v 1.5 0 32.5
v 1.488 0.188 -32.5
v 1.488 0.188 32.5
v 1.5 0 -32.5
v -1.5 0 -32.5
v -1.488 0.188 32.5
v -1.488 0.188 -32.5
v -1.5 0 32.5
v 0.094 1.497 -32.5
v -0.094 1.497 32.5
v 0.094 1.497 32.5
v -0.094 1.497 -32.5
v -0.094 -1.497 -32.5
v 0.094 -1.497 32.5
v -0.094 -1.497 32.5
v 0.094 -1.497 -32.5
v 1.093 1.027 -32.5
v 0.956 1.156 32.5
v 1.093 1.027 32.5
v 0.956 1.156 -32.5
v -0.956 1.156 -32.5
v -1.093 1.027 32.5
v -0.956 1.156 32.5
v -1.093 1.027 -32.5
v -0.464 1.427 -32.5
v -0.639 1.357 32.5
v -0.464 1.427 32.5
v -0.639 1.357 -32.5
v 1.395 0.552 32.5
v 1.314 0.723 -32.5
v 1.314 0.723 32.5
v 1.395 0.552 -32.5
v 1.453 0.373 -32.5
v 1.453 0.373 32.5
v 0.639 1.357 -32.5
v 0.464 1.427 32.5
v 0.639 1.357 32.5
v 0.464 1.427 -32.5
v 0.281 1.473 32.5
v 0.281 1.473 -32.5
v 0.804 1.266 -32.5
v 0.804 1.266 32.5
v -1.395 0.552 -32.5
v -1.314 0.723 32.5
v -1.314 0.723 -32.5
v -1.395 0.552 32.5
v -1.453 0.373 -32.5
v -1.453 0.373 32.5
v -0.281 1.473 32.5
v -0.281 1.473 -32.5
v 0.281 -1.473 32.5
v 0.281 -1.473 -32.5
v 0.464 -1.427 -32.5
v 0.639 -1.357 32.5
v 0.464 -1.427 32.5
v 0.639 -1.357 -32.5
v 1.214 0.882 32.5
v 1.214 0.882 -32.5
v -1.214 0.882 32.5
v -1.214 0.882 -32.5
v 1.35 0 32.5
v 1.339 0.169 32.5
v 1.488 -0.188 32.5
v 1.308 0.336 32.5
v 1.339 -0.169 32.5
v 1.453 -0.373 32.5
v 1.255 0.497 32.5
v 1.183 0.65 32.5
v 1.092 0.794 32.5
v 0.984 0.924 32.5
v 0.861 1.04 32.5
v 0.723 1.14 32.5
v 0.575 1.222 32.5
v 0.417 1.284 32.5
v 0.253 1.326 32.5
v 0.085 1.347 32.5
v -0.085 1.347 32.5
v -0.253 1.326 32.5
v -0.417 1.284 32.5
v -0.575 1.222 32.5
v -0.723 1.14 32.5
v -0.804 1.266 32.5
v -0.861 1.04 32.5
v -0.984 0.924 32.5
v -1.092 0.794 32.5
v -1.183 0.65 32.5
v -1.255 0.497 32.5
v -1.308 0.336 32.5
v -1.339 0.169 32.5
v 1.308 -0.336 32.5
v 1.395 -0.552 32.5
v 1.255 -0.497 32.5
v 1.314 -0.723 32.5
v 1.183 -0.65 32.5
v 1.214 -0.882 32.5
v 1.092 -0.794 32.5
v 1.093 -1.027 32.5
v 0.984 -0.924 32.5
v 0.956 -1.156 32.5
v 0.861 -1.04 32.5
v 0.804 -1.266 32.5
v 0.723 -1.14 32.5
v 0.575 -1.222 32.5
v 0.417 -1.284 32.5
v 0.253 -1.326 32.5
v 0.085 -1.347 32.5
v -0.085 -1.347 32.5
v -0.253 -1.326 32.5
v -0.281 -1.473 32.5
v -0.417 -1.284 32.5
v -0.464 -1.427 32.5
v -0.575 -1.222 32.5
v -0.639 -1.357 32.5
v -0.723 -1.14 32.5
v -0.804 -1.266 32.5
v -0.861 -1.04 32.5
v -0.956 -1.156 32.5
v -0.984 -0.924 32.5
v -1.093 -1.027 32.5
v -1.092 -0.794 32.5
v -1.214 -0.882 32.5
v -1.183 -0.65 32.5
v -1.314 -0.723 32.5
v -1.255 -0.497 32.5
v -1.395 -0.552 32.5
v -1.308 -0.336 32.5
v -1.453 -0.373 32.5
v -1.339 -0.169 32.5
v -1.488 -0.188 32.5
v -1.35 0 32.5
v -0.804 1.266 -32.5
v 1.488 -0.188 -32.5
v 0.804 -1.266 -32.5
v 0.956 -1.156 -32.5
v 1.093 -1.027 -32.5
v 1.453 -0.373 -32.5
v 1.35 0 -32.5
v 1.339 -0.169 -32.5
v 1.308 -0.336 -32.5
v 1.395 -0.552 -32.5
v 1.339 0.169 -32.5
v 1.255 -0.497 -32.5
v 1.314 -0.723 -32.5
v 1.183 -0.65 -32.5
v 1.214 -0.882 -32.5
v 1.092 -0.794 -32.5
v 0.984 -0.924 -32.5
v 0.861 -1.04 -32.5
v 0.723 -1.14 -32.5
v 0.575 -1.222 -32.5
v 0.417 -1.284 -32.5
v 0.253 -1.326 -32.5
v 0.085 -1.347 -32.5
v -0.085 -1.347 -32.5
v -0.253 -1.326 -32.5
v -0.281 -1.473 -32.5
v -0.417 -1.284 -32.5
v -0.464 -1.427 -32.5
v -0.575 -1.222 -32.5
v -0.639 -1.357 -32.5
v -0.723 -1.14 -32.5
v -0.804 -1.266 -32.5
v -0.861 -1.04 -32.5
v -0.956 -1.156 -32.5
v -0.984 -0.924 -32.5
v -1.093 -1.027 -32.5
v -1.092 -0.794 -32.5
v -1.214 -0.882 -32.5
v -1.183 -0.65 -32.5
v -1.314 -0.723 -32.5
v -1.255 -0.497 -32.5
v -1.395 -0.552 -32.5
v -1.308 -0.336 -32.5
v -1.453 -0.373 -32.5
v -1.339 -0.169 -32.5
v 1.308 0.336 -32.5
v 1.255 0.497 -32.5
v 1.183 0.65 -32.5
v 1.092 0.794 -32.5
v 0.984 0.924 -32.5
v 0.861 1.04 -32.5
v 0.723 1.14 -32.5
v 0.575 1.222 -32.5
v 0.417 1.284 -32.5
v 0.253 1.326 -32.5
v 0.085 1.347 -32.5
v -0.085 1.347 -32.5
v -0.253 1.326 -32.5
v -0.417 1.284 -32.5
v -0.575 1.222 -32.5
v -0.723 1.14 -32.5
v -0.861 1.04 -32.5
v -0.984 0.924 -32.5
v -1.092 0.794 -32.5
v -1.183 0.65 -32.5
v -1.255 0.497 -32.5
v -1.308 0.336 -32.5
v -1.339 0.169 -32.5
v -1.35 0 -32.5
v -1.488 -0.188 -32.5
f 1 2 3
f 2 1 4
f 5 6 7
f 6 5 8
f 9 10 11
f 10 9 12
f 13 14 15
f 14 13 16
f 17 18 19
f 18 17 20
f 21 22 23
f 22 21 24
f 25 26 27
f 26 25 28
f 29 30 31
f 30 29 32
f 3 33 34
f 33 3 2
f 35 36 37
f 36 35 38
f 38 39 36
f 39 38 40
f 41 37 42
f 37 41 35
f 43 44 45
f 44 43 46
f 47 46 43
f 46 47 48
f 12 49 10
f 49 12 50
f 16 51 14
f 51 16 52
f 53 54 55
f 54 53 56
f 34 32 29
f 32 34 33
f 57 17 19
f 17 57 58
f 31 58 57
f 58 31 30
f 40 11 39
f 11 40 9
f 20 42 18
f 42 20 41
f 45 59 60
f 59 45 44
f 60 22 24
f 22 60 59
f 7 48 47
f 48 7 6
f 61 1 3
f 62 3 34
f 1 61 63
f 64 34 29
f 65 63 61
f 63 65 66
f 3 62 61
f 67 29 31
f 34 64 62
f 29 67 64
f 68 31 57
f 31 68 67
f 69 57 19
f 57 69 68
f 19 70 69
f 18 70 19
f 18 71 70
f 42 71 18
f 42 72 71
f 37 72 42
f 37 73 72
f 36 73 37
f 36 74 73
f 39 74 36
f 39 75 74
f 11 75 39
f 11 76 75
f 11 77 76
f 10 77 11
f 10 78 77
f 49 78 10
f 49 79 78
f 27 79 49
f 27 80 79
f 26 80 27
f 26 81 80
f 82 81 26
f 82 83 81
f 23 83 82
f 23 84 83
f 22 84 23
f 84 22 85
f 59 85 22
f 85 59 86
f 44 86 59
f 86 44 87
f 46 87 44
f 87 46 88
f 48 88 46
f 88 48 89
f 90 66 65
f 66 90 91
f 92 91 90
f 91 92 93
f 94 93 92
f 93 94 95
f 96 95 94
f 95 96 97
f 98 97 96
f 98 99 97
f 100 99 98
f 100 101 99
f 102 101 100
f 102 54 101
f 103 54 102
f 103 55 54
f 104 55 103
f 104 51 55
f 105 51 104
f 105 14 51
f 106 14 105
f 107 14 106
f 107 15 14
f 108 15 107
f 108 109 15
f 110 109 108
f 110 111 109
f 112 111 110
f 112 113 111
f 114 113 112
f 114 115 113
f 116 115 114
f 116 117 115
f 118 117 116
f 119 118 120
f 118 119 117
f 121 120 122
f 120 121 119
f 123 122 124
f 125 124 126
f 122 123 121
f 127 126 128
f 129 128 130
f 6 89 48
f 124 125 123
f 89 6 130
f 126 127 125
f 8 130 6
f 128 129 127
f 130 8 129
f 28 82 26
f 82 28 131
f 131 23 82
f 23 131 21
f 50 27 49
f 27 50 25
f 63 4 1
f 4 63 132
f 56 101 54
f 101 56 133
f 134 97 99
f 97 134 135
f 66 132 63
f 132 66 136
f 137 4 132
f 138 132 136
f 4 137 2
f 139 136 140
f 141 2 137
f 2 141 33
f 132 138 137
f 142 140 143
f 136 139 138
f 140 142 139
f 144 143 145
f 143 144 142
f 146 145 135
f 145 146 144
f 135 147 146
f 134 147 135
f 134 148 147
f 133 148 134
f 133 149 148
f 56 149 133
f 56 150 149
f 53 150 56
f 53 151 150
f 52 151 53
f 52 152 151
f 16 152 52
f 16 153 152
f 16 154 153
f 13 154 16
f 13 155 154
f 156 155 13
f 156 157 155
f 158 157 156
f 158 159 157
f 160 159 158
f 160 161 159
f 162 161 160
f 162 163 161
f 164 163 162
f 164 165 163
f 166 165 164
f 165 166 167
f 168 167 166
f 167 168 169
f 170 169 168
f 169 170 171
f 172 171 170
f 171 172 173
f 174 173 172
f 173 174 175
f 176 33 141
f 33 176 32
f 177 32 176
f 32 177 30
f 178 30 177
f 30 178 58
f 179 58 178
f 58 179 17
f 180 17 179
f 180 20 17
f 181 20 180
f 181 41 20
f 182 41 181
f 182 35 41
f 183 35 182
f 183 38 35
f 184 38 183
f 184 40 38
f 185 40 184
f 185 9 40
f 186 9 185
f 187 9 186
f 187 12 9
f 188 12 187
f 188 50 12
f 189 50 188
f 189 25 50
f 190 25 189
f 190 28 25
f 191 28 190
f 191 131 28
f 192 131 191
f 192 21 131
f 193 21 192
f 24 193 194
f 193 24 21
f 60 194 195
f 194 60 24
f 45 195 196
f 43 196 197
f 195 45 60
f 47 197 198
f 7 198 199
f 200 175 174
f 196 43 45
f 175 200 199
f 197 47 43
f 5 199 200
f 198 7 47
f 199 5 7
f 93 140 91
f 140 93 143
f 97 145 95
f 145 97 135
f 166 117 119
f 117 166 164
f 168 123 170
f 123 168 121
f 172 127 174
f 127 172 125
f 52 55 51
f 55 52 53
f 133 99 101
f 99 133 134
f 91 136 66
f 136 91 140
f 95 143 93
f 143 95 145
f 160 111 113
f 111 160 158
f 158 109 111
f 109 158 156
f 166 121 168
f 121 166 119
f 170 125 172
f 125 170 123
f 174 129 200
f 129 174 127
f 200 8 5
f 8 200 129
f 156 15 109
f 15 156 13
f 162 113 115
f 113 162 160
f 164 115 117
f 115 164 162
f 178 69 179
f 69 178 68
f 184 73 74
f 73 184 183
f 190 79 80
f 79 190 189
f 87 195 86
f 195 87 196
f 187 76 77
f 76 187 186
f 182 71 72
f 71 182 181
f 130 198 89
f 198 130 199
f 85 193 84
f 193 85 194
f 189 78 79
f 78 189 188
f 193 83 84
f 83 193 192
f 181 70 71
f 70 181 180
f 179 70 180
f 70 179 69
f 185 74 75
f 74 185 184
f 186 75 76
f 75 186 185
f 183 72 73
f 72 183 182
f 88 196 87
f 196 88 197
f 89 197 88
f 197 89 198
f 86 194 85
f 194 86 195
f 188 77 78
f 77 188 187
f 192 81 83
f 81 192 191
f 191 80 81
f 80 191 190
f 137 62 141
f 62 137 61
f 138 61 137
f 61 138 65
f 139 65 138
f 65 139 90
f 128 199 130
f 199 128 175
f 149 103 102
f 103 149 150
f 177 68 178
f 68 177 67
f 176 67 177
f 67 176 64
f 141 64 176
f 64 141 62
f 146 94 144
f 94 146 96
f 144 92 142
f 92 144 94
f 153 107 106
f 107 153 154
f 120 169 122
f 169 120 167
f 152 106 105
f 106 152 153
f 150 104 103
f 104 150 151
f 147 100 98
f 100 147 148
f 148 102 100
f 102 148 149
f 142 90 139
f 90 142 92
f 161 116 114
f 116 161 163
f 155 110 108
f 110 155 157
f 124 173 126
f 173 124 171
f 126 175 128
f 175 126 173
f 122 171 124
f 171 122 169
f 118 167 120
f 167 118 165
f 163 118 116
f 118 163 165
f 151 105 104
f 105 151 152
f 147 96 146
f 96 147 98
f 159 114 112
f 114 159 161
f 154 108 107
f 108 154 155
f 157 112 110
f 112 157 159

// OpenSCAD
$fn = 50;


difference() {
	union() {
		translate(v = [0, 0, -32.5000000000]) {
			cylinder(h = 65, r = 1.5000000000);
		}
	}
	union() {
		translate(v = [0, 0, -100.0000000000]) {
			cylinder(h = 200, r = 1.3500000000);
		}
	}
}
